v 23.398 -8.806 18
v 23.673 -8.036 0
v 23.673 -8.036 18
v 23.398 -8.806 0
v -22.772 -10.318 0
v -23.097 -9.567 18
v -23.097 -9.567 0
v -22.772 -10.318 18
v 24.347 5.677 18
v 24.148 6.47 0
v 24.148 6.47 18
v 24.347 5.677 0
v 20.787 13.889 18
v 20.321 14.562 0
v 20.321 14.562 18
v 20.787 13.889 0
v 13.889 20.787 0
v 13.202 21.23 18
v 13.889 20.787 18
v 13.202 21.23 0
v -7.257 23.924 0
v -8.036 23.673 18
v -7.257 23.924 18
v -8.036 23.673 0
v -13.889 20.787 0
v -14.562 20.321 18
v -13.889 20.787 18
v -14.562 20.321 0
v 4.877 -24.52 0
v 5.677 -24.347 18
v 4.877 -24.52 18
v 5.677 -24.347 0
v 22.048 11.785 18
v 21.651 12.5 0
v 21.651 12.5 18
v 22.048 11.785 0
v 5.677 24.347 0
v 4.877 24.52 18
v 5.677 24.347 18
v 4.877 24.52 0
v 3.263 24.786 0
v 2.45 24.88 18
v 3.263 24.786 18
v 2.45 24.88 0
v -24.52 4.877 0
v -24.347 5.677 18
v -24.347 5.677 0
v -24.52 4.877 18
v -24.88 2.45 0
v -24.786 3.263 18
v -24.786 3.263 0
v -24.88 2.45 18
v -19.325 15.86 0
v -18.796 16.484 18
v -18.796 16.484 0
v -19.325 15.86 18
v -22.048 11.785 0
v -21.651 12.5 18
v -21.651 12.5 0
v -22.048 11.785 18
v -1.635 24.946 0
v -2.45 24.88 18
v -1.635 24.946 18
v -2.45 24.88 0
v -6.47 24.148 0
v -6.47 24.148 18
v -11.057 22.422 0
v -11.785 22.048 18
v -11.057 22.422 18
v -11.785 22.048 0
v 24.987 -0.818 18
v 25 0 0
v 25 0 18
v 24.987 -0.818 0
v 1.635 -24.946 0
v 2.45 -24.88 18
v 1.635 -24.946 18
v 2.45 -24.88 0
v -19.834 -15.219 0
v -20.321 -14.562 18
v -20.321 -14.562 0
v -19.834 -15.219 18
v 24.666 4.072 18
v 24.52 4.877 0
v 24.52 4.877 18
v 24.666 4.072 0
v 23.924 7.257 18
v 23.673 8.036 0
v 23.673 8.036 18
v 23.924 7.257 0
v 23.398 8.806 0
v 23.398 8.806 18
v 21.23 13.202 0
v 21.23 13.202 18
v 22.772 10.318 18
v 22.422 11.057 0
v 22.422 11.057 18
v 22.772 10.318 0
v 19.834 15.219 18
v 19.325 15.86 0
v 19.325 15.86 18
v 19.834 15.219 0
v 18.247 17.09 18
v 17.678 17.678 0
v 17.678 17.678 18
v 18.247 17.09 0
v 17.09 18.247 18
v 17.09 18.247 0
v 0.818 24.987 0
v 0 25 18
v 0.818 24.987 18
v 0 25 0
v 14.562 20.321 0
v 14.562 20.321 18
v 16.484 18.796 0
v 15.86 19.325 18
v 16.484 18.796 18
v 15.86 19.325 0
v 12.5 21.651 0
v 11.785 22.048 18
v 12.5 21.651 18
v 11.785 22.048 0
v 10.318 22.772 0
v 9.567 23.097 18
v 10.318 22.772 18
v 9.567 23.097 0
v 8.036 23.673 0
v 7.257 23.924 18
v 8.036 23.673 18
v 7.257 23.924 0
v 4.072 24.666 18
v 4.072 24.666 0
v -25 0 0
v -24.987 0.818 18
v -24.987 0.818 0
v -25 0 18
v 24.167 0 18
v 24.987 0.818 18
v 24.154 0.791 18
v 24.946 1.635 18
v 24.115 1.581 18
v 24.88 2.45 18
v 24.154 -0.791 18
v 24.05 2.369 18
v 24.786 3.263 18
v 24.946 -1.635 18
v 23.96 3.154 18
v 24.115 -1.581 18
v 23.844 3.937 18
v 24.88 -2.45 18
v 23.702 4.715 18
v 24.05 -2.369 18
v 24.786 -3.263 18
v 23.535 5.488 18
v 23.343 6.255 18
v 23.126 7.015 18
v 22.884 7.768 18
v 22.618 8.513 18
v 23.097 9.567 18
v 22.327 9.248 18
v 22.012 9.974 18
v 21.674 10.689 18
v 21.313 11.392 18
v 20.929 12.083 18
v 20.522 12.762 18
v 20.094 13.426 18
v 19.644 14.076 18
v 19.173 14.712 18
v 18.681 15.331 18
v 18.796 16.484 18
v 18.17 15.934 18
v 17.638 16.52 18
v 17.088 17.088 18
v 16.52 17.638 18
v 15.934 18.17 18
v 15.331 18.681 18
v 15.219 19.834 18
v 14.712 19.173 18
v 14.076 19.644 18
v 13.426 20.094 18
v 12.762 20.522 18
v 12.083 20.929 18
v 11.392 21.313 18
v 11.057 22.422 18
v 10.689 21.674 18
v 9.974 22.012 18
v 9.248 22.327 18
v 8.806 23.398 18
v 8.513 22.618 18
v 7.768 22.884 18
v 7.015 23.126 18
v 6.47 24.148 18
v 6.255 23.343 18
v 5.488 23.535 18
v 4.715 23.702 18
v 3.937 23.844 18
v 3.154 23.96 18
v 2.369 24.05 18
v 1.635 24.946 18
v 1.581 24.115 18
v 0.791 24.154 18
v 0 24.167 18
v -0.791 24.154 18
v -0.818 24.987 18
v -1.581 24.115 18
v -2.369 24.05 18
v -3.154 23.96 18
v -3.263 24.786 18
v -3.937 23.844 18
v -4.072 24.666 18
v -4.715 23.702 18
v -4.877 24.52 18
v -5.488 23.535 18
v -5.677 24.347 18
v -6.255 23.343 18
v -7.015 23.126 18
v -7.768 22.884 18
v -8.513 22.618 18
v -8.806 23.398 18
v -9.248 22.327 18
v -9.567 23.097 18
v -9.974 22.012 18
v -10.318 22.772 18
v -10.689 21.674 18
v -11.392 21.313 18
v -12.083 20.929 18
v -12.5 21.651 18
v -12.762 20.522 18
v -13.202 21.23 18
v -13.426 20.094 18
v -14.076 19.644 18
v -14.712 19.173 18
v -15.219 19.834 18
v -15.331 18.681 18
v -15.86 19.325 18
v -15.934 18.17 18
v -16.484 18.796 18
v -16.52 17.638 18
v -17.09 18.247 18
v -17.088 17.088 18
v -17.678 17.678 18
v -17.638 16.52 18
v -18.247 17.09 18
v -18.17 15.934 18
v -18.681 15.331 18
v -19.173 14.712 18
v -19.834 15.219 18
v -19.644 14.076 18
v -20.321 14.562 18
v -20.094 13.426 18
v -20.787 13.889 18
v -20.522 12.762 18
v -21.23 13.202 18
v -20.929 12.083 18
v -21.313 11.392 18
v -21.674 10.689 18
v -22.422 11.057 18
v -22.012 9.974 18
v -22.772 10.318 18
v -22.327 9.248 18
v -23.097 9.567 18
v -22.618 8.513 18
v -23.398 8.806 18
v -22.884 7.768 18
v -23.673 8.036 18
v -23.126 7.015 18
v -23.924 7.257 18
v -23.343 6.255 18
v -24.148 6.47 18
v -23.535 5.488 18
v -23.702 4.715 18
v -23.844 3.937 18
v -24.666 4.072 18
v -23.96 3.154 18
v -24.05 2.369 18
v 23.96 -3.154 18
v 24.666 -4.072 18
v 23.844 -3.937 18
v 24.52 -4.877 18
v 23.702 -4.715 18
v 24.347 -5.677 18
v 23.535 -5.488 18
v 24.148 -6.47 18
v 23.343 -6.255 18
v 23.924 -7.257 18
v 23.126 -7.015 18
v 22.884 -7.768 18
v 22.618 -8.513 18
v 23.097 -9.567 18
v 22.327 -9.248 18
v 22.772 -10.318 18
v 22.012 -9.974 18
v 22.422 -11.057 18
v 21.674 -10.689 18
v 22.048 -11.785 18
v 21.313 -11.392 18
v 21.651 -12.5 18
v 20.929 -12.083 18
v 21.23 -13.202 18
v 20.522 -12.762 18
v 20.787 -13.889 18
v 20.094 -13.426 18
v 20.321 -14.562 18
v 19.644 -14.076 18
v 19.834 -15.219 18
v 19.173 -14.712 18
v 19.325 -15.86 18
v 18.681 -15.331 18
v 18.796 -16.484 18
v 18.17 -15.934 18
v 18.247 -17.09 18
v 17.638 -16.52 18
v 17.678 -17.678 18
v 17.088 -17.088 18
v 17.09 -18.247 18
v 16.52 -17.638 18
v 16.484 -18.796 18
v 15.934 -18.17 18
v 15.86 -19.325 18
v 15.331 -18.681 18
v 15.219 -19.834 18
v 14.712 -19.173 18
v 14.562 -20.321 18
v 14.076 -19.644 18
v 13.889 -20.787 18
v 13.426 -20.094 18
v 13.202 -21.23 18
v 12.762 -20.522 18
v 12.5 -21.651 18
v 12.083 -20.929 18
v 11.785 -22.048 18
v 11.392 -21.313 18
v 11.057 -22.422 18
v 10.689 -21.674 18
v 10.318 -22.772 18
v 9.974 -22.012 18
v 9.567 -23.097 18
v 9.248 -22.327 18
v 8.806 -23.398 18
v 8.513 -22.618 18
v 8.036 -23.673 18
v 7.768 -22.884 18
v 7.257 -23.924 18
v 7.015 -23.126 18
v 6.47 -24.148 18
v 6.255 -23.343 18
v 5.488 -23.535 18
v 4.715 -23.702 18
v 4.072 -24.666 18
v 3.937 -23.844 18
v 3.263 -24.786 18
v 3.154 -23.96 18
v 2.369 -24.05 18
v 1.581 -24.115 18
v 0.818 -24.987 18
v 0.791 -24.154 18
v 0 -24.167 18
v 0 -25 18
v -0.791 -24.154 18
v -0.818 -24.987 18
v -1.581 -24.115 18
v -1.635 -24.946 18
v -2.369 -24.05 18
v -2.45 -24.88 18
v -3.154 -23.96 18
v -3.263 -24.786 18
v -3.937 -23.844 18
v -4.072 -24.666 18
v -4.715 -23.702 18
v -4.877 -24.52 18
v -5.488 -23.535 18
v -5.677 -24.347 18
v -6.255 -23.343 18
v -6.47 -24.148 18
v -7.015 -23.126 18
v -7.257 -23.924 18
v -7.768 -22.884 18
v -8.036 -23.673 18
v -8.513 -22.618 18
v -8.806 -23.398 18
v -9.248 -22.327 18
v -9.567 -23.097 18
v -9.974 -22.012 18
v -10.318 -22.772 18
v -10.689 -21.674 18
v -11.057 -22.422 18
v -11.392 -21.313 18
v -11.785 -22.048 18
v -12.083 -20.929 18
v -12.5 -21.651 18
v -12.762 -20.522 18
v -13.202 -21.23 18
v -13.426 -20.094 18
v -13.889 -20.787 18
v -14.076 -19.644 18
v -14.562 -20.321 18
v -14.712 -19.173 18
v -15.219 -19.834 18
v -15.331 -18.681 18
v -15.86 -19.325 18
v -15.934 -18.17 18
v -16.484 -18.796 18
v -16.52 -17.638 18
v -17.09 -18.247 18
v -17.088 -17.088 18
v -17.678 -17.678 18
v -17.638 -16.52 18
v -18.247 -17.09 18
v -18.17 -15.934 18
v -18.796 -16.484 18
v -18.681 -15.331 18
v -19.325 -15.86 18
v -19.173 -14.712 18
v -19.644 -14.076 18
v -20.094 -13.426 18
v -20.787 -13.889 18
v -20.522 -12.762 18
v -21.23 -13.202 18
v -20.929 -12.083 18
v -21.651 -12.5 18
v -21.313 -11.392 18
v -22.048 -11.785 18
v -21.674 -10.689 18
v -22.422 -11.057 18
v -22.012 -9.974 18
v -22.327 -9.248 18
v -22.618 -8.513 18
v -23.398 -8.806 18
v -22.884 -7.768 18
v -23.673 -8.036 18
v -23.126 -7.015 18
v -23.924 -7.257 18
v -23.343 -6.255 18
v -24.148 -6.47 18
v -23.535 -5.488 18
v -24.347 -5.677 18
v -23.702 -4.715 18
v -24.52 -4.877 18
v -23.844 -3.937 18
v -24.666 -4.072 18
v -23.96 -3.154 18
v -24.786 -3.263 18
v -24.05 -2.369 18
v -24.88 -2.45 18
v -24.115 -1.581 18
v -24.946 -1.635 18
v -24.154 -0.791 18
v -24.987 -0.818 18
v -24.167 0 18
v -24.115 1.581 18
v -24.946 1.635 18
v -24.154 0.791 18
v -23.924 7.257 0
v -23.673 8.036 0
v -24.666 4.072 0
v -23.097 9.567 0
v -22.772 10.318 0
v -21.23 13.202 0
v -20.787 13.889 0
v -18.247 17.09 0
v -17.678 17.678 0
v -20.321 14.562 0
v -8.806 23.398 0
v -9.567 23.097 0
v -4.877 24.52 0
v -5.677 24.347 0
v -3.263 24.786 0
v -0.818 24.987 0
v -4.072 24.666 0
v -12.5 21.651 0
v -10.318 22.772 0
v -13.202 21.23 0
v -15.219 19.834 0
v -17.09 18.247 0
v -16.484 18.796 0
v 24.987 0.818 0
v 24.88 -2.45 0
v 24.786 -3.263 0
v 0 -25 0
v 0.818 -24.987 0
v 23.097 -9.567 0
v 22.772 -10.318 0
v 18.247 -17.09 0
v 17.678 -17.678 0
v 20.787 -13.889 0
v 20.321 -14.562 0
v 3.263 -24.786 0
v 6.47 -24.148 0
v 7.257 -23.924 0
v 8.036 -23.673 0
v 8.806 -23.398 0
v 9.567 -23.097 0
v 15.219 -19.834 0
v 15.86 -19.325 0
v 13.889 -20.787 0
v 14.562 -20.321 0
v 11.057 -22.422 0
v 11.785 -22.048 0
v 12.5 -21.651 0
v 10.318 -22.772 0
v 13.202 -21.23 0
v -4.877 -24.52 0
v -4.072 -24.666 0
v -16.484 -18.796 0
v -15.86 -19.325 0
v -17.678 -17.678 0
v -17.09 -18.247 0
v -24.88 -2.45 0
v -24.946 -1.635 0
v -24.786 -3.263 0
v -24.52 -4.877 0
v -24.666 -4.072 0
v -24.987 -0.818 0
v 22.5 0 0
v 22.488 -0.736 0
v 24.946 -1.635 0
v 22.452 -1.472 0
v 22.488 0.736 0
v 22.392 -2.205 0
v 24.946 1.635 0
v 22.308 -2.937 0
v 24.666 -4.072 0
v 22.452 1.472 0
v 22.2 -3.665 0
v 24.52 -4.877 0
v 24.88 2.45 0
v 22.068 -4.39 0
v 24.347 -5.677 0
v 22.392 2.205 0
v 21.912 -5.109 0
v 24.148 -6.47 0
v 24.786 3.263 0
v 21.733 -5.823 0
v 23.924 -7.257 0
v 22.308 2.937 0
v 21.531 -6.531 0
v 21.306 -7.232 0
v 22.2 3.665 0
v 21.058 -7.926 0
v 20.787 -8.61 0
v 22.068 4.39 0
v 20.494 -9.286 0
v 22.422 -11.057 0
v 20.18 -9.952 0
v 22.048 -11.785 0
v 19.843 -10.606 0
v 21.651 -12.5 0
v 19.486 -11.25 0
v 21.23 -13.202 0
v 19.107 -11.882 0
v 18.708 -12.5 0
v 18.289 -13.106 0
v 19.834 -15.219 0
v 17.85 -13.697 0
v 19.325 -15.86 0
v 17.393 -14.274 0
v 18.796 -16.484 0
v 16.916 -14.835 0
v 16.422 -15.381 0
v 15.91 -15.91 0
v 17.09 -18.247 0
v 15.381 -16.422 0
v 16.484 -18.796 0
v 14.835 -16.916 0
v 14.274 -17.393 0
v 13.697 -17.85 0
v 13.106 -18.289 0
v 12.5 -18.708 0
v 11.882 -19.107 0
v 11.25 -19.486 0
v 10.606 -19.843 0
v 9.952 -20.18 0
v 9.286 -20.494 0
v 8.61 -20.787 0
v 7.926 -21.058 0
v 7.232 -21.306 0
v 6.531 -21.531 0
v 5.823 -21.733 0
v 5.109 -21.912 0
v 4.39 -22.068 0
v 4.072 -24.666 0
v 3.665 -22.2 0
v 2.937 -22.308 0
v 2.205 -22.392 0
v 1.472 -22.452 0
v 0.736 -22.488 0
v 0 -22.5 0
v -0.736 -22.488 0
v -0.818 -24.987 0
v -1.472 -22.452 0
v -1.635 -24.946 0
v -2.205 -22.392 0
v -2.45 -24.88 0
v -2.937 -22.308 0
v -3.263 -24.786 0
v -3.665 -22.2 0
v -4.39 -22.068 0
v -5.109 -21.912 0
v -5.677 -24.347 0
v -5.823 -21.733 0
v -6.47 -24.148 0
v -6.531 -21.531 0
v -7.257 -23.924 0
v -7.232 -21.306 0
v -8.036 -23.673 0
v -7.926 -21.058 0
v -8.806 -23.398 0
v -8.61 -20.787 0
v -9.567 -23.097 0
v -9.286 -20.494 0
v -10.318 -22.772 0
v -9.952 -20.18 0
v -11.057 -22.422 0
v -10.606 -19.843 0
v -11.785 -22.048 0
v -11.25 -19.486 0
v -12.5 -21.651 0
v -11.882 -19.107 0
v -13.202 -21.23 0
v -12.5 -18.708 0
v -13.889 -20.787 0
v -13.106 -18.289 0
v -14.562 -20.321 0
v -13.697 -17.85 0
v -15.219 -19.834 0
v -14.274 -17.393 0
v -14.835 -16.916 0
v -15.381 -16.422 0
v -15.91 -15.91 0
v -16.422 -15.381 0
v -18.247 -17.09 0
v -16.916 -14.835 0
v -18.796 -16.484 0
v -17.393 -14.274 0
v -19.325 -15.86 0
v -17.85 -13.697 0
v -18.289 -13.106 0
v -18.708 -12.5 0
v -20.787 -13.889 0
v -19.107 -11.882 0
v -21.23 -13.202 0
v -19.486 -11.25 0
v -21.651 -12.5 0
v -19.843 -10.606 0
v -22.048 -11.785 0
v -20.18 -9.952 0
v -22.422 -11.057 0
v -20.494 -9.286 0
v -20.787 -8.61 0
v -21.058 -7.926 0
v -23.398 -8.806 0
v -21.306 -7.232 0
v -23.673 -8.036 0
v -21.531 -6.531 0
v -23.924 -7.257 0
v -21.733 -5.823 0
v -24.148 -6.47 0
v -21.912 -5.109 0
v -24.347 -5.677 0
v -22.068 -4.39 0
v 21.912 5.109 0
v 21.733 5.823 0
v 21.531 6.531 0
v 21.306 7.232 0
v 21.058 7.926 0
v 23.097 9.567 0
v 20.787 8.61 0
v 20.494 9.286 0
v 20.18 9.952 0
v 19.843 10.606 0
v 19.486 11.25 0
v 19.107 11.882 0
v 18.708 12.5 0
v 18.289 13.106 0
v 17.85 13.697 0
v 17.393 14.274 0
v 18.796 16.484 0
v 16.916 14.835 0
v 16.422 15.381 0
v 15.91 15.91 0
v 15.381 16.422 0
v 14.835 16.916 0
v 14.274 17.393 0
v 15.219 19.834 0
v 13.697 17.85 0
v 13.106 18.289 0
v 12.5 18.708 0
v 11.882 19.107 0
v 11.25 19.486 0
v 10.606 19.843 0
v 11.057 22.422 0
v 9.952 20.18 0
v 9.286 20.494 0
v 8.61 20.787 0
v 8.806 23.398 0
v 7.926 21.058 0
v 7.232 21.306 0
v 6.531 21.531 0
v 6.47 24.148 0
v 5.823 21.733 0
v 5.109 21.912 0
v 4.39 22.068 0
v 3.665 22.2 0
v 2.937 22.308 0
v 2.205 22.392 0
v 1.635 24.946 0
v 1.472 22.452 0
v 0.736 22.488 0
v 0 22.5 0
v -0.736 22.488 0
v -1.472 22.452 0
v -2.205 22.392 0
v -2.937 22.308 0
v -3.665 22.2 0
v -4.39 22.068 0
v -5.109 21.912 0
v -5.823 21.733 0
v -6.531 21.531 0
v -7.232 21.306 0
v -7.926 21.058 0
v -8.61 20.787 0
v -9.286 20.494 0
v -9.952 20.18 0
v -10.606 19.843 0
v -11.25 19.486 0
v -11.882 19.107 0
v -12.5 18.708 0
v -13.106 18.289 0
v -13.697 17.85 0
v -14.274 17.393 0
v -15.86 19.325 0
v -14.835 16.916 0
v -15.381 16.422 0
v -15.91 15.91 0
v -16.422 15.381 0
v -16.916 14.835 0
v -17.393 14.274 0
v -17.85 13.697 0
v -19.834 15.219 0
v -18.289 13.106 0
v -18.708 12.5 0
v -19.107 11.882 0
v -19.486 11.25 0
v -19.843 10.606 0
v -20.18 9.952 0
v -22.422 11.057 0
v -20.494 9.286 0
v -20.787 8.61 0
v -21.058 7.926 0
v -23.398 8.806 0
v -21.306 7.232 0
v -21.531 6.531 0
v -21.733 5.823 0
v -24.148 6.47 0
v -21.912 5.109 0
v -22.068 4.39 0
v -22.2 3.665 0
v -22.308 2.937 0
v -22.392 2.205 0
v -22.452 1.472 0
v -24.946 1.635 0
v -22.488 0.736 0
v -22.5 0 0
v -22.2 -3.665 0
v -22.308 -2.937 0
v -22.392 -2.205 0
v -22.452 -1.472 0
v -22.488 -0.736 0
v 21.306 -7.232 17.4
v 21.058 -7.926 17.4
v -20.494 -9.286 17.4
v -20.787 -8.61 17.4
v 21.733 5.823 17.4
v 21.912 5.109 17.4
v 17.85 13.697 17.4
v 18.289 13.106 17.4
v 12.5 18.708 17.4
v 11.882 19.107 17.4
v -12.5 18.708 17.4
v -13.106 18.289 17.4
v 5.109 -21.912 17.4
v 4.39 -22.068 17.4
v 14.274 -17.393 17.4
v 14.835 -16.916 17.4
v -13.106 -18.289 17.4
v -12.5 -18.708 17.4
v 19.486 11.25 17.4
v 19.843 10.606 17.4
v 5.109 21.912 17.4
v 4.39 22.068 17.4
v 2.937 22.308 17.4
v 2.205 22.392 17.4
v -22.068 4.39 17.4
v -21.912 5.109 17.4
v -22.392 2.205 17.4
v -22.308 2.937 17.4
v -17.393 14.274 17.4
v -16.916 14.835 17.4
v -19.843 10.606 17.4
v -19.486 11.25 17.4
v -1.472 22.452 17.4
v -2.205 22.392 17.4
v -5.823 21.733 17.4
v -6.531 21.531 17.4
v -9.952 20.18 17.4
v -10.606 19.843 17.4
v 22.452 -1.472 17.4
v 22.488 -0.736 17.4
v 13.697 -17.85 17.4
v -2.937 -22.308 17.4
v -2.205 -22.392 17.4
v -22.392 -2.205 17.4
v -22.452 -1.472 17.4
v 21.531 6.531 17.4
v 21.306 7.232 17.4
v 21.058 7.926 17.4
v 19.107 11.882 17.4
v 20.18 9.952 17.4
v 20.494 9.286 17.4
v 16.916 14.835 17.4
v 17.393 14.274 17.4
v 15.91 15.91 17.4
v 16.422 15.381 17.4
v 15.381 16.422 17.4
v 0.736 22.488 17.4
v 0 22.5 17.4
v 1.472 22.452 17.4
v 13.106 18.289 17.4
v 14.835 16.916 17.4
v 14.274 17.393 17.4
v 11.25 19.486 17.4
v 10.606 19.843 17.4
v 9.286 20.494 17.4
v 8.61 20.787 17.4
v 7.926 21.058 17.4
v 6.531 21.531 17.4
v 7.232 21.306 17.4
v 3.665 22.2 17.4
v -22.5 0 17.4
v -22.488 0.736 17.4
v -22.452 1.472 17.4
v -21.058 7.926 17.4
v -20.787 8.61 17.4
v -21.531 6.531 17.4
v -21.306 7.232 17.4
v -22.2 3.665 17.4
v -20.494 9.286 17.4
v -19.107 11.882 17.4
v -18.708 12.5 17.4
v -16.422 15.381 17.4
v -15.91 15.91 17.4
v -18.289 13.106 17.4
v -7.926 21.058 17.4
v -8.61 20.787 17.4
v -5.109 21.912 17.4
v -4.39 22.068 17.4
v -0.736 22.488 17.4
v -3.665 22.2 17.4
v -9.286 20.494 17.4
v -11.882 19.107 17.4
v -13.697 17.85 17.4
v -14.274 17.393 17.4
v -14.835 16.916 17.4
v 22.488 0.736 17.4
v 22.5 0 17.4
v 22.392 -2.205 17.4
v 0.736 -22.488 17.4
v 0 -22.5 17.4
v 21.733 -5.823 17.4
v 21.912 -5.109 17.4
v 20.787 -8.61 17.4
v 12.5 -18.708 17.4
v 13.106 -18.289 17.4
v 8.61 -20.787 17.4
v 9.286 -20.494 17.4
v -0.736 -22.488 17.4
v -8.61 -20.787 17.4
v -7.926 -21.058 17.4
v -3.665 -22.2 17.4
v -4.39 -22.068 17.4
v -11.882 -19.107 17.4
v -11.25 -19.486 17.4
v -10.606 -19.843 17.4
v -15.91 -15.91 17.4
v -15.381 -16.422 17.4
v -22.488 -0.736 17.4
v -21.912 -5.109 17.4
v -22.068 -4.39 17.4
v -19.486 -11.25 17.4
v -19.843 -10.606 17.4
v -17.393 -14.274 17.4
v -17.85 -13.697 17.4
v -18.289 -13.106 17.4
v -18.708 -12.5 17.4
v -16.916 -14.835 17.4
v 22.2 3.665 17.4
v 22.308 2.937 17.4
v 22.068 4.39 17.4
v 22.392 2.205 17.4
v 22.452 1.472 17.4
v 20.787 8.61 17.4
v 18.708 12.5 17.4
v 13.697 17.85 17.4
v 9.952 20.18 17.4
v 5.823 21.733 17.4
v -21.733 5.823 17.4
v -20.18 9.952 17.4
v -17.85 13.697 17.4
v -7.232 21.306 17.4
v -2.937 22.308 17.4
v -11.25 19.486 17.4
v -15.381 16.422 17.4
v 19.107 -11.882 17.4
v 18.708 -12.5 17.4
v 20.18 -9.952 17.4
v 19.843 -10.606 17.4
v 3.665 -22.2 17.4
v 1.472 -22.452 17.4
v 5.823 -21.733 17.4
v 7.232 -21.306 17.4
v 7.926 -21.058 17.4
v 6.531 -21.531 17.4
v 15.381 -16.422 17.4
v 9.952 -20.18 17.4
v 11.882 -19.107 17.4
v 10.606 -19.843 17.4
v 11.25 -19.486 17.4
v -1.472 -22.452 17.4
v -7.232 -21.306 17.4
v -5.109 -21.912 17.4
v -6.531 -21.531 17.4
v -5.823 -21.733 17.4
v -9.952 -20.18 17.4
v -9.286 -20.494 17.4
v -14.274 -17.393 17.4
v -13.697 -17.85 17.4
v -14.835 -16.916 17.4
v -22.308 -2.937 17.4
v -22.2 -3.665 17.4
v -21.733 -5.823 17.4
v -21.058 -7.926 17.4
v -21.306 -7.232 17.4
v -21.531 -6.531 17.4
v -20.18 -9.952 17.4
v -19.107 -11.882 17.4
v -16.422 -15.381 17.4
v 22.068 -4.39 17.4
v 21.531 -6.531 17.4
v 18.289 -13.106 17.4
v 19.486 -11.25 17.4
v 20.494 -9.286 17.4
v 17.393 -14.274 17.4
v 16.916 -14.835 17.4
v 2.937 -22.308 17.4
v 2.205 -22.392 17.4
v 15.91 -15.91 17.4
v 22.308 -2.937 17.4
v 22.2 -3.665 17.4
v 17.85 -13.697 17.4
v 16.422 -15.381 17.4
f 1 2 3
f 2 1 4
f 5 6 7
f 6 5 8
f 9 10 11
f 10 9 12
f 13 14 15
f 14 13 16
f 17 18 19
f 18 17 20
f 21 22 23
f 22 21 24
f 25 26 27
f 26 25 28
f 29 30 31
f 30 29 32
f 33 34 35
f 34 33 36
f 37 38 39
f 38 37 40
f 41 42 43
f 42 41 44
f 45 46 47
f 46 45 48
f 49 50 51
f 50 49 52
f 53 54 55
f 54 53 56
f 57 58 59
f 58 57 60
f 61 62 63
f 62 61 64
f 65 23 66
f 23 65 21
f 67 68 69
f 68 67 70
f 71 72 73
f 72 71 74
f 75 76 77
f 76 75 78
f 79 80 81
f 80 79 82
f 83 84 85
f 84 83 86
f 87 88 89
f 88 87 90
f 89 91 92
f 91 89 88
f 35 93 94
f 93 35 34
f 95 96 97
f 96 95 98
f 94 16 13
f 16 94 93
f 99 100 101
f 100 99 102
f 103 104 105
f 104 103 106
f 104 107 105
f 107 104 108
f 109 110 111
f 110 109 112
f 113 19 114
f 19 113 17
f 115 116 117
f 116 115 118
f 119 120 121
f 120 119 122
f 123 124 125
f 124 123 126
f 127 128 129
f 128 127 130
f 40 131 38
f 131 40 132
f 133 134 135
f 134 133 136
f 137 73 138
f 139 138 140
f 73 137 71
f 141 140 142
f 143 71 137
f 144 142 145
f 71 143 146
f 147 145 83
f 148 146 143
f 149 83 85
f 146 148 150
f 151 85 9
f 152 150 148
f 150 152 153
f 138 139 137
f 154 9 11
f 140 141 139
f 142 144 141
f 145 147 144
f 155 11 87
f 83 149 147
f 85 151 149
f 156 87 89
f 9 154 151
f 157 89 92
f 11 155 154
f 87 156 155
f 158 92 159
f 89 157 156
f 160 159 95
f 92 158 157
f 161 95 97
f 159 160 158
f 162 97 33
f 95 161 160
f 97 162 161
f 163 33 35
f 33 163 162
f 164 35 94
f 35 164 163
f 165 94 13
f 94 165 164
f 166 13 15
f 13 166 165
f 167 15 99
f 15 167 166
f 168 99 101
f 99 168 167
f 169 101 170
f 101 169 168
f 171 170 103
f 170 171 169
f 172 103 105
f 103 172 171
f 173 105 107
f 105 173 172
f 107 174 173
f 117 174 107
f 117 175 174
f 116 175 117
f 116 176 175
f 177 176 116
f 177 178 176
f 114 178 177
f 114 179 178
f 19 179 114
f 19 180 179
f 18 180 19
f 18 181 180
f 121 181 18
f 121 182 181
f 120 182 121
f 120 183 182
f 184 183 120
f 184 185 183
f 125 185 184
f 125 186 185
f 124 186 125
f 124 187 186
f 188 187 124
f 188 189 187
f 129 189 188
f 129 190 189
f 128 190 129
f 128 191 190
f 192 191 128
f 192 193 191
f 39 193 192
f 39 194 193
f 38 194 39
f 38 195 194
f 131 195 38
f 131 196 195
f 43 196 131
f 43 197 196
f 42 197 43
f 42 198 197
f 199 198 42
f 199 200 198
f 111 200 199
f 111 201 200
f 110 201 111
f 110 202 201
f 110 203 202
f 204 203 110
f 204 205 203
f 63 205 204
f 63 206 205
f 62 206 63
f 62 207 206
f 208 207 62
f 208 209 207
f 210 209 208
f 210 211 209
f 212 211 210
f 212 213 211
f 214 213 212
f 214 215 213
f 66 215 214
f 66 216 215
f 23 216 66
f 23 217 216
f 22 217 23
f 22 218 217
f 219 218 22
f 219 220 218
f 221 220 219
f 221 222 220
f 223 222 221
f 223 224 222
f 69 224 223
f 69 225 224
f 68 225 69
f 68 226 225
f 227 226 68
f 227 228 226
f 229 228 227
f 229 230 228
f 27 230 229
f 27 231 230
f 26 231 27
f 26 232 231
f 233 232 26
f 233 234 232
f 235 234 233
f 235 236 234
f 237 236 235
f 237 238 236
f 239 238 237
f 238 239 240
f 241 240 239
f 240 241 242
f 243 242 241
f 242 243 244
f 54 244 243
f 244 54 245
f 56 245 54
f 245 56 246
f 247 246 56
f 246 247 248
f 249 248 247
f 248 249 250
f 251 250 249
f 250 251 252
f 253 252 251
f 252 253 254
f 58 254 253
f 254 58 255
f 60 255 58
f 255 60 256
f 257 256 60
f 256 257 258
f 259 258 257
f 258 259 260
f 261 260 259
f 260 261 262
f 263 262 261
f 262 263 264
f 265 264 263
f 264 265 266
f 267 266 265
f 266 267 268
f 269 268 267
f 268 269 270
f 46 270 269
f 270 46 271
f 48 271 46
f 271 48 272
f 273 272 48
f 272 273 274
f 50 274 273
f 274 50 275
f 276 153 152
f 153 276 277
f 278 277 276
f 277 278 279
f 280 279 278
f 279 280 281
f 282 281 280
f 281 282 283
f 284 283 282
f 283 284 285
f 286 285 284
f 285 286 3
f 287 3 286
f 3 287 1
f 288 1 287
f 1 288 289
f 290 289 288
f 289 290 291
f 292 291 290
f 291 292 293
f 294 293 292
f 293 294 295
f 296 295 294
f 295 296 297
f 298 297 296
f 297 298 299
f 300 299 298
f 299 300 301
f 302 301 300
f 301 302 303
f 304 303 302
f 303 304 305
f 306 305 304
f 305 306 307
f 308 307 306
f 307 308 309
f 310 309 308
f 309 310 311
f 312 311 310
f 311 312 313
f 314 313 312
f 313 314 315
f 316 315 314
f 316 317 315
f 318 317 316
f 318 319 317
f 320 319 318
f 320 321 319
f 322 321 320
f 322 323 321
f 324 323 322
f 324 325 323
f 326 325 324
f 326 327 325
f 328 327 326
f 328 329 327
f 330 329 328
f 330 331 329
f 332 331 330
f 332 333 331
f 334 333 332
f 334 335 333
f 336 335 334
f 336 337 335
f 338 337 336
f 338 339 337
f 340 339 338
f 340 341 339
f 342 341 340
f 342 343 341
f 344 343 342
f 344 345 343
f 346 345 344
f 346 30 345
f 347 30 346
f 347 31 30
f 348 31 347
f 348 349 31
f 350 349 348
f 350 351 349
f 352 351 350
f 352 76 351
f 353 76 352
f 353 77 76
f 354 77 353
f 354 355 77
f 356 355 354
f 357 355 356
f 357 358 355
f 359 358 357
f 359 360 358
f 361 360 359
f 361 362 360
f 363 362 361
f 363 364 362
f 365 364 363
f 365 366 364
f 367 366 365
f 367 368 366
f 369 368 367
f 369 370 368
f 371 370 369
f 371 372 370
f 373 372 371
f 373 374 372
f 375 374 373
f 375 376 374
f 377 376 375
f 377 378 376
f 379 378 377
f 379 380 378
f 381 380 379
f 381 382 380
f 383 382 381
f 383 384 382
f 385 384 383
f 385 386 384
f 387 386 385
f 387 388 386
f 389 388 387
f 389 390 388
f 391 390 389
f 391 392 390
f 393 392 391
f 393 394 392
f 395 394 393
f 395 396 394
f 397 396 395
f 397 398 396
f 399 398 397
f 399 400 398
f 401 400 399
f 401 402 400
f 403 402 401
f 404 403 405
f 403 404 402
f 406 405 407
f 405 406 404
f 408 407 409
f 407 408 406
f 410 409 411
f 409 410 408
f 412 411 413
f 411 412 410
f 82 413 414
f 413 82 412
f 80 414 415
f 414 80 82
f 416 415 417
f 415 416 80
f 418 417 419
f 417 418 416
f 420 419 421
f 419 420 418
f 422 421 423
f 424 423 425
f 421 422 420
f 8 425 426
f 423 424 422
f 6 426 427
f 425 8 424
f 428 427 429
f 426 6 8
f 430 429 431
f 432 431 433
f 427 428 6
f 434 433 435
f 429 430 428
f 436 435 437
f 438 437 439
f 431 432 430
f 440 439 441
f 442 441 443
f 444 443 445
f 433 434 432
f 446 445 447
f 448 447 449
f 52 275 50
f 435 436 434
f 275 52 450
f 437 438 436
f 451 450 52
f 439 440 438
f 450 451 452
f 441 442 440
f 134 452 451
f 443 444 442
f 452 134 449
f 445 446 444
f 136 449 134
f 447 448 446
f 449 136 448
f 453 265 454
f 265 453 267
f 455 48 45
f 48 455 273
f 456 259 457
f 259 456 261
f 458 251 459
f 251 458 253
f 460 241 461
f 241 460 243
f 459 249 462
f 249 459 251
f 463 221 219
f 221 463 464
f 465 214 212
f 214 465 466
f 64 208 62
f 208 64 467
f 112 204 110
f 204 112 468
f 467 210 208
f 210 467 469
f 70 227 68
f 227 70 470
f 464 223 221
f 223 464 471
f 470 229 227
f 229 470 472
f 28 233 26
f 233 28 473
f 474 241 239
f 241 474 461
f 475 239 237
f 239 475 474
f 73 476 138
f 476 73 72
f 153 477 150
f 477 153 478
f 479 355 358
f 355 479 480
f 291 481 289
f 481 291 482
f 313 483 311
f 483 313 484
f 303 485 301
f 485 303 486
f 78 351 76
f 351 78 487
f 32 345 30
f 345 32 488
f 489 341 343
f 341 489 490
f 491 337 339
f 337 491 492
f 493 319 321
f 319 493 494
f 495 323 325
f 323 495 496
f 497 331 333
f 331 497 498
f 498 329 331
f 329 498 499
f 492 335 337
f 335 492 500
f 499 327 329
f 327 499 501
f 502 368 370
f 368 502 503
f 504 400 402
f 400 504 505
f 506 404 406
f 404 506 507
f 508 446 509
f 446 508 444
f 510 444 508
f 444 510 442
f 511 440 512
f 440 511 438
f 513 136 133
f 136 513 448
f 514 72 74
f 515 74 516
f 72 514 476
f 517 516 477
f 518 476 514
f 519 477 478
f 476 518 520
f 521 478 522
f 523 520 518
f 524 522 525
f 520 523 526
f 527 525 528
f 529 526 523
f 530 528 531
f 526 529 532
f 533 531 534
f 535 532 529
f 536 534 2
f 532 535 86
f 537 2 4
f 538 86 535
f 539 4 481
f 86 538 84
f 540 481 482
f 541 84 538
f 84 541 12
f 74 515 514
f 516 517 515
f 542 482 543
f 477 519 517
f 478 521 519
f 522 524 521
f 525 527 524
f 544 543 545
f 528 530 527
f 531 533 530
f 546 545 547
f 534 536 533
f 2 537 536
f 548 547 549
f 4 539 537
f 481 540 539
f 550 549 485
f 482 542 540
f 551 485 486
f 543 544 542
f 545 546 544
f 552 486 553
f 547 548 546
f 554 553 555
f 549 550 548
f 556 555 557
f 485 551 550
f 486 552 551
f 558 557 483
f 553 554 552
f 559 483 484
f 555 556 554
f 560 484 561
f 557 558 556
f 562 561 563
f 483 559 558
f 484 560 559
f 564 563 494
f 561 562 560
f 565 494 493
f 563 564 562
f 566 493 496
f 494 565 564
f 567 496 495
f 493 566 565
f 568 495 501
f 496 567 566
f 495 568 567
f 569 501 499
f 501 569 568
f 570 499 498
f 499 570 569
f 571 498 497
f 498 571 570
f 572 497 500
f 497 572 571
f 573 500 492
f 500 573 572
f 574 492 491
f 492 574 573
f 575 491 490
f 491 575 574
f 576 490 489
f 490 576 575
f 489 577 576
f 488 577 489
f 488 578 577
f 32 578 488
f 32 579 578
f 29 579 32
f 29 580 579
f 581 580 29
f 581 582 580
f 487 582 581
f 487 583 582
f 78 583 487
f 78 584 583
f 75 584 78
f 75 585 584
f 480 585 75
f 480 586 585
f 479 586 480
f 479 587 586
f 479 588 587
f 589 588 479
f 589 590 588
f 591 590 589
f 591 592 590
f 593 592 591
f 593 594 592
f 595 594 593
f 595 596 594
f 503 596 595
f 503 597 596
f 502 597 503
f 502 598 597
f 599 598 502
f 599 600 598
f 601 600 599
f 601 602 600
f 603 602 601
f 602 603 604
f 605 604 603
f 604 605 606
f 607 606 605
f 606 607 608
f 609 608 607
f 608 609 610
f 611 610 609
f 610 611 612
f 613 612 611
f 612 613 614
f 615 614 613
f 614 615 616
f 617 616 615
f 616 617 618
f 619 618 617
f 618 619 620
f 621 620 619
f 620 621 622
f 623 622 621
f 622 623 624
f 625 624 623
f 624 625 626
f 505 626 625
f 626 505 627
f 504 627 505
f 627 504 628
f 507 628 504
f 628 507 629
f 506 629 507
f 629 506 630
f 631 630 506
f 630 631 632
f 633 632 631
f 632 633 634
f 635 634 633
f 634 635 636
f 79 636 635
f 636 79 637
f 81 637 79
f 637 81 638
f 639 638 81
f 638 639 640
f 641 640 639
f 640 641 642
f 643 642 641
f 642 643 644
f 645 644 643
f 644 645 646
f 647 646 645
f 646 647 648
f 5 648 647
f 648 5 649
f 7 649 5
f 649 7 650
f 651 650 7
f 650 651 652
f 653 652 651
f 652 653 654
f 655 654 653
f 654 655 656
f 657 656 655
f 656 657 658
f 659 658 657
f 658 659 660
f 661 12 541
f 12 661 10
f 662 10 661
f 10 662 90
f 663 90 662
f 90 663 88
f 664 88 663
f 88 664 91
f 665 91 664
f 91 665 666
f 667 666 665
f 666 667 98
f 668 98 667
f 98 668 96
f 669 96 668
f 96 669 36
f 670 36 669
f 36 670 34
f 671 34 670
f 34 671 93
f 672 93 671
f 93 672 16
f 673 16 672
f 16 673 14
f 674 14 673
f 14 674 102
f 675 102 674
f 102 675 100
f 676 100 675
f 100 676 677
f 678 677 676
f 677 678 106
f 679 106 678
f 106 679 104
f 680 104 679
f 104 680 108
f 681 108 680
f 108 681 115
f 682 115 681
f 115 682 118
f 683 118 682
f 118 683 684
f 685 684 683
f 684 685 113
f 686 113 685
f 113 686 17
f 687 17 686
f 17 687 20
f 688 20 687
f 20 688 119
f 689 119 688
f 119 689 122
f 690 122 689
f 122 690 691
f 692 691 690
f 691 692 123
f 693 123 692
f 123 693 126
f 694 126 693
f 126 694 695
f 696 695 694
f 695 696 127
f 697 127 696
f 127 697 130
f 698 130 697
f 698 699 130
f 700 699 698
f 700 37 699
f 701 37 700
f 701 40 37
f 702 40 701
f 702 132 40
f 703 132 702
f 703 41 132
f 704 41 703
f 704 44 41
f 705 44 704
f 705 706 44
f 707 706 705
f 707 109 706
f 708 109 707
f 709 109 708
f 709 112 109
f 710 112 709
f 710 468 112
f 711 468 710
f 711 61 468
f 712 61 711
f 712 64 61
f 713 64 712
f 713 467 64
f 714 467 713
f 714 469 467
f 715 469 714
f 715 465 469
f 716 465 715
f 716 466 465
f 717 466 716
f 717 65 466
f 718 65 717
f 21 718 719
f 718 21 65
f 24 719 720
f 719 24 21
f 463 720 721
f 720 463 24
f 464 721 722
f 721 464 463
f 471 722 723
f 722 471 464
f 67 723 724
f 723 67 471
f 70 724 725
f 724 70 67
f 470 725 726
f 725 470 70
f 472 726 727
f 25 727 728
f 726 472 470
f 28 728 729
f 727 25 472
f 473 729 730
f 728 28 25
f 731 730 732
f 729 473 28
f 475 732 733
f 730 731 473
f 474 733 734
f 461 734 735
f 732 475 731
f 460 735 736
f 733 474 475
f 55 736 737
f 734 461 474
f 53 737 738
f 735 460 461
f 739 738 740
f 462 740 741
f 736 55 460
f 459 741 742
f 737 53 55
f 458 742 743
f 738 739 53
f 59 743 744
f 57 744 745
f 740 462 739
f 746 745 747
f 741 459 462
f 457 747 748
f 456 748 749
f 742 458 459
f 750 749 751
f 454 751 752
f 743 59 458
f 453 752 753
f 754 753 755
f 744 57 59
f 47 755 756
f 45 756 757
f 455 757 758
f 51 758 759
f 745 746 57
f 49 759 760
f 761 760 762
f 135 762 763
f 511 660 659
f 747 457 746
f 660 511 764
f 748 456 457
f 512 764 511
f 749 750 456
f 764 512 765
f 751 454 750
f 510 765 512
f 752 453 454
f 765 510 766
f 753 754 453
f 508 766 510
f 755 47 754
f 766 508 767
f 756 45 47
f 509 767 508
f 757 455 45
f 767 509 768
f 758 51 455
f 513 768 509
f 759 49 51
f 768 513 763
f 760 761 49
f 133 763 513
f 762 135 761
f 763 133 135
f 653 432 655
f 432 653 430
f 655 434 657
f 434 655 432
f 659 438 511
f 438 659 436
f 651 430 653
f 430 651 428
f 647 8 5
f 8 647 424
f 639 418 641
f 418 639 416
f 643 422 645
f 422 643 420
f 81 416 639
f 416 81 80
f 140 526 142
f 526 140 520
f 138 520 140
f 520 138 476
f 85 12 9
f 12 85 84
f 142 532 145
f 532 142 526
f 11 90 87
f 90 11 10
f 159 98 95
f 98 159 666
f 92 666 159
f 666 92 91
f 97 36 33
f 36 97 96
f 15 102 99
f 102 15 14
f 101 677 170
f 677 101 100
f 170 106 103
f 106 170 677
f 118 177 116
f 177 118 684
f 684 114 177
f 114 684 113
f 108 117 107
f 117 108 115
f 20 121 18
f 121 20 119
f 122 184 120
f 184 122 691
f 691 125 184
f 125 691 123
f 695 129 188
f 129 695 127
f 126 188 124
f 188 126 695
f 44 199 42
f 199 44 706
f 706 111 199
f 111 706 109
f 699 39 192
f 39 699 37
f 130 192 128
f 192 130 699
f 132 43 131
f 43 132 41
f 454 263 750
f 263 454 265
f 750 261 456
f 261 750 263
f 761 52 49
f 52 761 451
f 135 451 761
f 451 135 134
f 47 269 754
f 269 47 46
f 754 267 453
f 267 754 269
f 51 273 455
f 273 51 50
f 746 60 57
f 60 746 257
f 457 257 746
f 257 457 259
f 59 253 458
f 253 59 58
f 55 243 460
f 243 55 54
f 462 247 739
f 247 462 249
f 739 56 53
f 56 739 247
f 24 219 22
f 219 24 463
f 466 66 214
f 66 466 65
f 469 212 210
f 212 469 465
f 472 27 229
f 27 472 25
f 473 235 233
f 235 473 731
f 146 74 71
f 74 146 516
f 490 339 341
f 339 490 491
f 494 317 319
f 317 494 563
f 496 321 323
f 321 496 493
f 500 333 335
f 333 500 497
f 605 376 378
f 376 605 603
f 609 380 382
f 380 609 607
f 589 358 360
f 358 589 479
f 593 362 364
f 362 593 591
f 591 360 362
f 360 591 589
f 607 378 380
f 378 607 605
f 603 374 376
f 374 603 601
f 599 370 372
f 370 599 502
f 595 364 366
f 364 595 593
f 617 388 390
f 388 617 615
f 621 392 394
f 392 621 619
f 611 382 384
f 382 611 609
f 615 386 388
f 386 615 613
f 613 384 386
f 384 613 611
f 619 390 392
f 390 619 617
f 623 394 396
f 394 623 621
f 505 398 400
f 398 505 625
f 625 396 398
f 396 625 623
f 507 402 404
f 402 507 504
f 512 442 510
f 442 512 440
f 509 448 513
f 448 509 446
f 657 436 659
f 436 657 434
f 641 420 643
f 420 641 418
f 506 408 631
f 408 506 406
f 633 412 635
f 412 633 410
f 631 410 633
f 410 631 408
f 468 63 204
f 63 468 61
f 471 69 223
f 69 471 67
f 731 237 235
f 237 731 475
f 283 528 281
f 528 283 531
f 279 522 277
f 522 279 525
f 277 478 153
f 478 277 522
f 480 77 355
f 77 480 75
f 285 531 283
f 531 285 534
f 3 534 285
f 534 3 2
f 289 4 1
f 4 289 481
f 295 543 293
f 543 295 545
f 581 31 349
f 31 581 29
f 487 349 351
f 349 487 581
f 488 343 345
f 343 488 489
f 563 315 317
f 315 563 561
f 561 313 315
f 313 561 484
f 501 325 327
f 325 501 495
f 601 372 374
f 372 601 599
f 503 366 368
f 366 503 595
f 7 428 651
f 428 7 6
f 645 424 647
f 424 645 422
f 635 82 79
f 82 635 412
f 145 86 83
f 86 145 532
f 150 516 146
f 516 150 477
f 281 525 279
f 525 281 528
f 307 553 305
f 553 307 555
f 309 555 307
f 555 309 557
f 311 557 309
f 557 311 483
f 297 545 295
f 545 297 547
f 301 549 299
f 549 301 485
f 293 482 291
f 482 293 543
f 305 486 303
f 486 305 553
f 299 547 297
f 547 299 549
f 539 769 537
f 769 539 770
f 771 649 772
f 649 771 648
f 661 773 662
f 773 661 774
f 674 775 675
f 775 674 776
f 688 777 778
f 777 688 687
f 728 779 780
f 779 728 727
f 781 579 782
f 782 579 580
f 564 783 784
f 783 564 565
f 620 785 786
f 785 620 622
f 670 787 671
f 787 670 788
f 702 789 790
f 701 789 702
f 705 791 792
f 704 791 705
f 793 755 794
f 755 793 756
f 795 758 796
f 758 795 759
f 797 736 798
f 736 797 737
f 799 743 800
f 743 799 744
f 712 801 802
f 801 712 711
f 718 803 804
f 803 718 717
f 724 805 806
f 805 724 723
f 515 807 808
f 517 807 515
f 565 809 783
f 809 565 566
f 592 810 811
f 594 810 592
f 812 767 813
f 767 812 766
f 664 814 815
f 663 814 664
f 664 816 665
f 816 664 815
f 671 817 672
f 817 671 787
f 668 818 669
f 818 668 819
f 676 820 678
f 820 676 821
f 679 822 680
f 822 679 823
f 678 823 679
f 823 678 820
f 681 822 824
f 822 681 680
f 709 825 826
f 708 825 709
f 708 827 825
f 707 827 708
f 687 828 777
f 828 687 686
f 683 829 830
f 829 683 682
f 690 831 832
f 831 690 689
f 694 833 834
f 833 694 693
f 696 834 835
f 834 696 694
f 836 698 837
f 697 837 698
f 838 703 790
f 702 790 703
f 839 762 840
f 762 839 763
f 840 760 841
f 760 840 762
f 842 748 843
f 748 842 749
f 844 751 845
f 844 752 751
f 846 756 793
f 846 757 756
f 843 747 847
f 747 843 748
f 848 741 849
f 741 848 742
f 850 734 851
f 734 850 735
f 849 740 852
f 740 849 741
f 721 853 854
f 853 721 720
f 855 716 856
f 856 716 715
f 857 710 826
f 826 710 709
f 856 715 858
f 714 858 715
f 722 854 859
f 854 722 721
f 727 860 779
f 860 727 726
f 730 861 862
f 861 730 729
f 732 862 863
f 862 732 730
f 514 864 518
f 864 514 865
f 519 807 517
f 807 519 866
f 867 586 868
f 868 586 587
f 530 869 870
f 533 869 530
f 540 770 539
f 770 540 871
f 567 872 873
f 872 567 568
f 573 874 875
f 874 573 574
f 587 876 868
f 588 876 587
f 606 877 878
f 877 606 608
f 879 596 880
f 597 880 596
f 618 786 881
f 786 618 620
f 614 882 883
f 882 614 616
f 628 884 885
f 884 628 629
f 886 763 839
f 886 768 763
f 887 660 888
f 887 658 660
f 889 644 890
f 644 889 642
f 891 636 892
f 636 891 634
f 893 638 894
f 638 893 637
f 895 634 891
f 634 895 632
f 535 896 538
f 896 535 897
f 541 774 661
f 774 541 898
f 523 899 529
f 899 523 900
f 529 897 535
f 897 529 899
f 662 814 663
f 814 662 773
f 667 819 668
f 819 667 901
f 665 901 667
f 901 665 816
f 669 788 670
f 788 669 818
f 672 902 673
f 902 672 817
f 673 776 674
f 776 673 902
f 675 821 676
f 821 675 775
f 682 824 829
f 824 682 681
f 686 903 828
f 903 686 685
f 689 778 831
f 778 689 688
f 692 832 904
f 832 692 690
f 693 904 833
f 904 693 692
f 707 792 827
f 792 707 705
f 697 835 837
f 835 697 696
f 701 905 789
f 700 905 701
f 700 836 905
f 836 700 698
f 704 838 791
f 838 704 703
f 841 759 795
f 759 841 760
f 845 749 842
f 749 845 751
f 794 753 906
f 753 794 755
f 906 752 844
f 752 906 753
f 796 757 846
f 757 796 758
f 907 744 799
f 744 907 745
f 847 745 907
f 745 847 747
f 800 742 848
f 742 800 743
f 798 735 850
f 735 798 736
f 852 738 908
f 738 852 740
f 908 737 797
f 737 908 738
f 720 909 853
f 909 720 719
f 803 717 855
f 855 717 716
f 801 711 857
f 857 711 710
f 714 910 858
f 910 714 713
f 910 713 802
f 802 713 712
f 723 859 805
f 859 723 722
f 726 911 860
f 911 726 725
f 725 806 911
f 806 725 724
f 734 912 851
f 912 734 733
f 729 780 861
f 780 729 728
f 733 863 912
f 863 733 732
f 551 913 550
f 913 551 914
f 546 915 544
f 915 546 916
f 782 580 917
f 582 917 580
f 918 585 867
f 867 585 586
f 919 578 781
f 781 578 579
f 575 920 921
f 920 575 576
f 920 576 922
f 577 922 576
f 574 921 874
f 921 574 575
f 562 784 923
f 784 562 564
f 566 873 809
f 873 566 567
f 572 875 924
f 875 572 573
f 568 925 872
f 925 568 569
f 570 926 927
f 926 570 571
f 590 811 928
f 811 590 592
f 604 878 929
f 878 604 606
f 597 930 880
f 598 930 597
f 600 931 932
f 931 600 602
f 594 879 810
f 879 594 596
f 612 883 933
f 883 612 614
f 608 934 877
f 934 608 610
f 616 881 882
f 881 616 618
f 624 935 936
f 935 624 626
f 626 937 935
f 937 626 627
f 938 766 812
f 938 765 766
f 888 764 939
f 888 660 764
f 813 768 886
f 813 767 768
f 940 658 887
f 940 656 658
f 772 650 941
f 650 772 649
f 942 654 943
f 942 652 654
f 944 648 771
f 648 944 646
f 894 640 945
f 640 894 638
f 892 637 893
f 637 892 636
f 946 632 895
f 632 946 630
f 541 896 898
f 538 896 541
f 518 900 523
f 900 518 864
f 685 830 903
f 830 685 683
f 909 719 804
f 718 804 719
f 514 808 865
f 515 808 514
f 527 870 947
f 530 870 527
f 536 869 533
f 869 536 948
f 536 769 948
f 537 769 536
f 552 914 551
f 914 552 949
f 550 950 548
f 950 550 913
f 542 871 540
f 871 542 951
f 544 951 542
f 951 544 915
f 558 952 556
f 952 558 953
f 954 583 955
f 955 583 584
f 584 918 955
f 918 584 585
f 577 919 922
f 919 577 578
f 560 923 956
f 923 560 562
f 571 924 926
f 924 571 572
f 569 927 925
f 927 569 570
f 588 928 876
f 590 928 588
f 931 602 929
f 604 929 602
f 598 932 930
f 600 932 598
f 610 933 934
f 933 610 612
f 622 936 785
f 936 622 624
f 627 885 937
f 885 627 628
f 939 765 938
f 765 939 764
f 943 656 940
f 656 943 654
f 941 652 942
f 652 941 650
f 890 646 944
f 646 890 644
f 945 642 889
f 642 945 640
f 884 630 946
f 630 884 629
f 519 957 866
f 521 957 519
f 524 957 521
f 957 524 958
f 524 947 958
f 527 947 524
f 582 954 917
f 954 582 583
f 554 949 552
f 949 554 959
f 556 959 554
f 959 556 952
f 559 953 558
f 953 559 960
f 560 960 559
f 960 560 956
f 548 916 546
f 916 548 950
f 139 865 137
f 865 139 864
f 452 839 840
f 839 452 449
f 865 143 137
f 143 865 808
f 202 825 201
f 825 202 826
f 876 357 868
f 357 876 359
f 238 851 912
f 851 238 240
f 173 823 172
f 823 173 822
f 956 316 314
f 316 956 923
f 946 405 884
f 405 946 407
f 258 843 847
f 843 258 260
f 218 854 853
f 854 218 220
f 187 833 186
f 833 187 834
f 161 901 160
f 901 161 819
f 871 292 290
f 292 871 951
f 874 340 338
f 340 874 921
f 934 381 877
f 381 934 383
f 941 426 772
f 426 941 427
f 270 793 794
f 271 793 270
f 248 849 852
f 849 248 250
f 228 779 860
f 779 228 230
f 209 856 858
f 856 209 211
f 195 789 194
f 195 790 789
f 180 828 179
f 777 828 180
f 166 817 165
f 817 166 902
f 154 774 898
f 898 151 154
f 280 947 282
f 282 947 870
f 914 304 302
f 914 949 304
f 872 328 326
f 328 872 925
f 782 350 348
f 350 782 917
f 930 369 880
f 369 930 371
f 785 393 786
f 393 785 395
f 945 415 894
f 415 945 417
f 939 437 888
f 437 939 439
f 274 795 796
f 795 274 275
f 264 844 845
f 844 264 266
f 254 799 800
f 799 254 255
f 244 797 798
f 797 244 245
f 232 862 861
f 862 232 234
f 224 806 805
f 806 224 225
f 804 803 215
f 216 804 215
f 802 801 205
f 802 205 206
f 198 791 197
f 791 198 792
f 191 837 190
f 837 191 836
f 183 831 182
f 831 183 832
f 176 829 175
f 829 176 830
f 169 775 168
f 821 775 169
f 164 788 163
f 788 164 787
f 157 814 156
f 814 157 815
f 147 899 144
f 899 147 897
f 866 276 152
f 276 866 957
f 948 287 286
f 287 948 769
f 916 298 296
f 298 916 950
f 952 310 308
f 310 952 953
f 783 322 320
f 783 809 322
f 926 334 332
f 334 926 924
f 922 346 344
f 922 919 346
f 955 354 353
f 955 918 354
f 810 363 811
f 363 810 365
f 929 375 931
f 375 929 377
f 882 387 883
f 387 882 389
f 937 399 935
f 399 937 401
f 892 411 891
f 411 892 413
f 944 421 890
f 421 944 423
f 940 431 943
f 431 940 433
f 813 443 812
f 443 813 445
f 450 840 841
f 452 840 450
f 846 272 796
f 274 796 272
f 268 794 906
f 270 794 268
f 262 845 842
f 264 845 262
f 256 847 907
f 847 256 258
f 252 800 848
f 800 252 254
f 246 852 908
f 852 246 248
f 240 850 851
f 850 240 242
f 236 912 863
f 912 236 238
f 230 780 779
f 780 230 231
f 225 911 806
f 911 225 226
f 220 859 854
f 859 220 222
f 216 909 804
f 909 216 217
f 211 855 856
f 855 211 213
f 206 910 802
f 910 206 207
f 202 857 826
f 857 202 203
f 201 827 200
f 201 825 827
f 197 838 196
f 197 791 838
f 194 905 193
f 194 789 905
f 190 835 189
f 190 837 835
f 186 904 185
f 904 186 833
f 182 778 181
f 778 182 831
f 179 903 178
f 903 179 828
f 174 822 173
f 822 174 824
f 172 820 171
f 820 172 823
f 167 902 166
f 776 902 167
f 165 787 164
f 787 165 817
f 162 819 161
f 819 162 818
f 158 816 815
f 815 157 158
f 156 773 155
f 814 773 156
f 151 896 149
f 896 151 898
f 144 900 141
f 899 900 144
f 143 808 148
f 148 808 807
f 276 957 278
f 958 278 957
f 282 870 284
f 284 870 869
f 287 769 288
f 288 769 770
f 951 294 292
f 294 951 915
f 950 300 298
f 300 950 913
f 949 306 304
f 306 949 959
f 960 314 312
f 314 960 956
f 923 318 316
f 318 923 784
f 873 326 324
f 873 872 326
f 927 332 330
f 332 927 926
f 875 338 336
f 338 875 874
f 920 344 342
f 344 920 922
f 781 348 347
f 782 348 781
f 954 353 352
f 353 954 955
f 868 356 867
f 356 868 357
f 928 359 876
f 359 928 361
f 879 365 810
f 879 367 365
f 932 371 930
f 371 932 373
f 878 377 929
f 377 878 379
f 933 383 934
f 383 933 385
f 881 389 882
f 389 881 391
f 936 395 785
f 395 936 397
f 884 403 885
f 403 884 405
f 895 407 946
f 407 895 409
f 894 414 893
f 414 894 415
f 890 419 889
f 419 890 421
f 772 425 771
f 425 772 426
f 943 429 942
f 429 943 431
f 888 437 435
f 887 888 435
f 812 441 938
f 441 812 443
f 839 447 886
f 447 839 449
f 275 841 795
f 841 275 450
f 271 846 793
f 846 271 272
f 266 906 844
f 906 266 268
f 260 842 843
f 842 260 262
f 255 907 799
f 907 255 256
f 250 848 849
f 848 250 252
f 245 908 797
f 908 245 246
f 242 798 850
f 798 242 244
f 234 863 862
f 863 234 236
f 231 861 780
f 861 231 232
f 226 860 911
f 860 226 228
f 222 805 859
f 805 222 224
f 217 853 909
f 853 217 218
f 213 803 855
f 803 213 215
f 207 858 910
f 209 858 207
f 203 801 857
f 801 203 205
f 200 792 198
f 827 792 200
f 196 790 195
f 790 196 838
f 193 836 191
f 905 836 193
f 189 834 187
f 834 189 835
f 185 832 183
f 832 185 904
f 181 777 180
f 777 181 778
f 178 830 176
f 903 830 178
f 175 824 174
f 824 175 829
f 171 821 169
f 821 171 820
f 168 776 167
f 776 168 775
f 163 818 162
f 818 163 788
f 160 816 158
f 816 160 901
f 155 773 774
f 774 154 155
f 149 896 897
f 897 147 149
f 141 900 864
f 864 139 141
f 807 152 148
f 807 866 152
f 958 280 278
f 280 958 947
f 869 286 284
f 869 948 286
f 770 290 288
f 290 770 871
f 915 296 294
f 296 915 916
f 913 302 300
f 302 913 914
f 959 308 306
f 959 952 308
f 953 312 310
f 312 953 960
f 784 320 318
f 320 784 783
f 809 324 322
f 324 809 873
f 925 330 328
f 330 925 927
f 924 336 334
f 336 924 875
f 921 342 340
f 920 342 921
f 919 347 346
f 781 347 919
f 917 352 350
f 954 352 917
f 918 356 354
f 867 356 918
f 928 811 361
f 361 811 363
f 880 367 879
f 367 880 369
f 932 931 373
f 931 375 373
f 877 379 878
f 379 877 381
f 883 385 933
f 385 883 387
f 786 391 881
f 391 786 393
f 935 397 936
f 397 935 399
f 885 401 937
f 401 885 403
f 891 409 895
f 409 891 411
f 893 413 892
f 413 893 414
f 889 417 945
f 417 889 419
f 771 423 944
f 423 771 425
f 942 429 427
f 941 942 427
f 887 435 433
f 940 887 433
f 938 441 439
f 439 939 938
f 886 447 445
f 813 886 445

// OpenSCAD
$fn=128+64;
difference() {
    cylinder(d=50,h=18);
    translate([0,0,-1]) cylinder(d=45,h=20);
    translate([0,0,9.3]) cylinder(d1=0,d2=50,h=9);
}
